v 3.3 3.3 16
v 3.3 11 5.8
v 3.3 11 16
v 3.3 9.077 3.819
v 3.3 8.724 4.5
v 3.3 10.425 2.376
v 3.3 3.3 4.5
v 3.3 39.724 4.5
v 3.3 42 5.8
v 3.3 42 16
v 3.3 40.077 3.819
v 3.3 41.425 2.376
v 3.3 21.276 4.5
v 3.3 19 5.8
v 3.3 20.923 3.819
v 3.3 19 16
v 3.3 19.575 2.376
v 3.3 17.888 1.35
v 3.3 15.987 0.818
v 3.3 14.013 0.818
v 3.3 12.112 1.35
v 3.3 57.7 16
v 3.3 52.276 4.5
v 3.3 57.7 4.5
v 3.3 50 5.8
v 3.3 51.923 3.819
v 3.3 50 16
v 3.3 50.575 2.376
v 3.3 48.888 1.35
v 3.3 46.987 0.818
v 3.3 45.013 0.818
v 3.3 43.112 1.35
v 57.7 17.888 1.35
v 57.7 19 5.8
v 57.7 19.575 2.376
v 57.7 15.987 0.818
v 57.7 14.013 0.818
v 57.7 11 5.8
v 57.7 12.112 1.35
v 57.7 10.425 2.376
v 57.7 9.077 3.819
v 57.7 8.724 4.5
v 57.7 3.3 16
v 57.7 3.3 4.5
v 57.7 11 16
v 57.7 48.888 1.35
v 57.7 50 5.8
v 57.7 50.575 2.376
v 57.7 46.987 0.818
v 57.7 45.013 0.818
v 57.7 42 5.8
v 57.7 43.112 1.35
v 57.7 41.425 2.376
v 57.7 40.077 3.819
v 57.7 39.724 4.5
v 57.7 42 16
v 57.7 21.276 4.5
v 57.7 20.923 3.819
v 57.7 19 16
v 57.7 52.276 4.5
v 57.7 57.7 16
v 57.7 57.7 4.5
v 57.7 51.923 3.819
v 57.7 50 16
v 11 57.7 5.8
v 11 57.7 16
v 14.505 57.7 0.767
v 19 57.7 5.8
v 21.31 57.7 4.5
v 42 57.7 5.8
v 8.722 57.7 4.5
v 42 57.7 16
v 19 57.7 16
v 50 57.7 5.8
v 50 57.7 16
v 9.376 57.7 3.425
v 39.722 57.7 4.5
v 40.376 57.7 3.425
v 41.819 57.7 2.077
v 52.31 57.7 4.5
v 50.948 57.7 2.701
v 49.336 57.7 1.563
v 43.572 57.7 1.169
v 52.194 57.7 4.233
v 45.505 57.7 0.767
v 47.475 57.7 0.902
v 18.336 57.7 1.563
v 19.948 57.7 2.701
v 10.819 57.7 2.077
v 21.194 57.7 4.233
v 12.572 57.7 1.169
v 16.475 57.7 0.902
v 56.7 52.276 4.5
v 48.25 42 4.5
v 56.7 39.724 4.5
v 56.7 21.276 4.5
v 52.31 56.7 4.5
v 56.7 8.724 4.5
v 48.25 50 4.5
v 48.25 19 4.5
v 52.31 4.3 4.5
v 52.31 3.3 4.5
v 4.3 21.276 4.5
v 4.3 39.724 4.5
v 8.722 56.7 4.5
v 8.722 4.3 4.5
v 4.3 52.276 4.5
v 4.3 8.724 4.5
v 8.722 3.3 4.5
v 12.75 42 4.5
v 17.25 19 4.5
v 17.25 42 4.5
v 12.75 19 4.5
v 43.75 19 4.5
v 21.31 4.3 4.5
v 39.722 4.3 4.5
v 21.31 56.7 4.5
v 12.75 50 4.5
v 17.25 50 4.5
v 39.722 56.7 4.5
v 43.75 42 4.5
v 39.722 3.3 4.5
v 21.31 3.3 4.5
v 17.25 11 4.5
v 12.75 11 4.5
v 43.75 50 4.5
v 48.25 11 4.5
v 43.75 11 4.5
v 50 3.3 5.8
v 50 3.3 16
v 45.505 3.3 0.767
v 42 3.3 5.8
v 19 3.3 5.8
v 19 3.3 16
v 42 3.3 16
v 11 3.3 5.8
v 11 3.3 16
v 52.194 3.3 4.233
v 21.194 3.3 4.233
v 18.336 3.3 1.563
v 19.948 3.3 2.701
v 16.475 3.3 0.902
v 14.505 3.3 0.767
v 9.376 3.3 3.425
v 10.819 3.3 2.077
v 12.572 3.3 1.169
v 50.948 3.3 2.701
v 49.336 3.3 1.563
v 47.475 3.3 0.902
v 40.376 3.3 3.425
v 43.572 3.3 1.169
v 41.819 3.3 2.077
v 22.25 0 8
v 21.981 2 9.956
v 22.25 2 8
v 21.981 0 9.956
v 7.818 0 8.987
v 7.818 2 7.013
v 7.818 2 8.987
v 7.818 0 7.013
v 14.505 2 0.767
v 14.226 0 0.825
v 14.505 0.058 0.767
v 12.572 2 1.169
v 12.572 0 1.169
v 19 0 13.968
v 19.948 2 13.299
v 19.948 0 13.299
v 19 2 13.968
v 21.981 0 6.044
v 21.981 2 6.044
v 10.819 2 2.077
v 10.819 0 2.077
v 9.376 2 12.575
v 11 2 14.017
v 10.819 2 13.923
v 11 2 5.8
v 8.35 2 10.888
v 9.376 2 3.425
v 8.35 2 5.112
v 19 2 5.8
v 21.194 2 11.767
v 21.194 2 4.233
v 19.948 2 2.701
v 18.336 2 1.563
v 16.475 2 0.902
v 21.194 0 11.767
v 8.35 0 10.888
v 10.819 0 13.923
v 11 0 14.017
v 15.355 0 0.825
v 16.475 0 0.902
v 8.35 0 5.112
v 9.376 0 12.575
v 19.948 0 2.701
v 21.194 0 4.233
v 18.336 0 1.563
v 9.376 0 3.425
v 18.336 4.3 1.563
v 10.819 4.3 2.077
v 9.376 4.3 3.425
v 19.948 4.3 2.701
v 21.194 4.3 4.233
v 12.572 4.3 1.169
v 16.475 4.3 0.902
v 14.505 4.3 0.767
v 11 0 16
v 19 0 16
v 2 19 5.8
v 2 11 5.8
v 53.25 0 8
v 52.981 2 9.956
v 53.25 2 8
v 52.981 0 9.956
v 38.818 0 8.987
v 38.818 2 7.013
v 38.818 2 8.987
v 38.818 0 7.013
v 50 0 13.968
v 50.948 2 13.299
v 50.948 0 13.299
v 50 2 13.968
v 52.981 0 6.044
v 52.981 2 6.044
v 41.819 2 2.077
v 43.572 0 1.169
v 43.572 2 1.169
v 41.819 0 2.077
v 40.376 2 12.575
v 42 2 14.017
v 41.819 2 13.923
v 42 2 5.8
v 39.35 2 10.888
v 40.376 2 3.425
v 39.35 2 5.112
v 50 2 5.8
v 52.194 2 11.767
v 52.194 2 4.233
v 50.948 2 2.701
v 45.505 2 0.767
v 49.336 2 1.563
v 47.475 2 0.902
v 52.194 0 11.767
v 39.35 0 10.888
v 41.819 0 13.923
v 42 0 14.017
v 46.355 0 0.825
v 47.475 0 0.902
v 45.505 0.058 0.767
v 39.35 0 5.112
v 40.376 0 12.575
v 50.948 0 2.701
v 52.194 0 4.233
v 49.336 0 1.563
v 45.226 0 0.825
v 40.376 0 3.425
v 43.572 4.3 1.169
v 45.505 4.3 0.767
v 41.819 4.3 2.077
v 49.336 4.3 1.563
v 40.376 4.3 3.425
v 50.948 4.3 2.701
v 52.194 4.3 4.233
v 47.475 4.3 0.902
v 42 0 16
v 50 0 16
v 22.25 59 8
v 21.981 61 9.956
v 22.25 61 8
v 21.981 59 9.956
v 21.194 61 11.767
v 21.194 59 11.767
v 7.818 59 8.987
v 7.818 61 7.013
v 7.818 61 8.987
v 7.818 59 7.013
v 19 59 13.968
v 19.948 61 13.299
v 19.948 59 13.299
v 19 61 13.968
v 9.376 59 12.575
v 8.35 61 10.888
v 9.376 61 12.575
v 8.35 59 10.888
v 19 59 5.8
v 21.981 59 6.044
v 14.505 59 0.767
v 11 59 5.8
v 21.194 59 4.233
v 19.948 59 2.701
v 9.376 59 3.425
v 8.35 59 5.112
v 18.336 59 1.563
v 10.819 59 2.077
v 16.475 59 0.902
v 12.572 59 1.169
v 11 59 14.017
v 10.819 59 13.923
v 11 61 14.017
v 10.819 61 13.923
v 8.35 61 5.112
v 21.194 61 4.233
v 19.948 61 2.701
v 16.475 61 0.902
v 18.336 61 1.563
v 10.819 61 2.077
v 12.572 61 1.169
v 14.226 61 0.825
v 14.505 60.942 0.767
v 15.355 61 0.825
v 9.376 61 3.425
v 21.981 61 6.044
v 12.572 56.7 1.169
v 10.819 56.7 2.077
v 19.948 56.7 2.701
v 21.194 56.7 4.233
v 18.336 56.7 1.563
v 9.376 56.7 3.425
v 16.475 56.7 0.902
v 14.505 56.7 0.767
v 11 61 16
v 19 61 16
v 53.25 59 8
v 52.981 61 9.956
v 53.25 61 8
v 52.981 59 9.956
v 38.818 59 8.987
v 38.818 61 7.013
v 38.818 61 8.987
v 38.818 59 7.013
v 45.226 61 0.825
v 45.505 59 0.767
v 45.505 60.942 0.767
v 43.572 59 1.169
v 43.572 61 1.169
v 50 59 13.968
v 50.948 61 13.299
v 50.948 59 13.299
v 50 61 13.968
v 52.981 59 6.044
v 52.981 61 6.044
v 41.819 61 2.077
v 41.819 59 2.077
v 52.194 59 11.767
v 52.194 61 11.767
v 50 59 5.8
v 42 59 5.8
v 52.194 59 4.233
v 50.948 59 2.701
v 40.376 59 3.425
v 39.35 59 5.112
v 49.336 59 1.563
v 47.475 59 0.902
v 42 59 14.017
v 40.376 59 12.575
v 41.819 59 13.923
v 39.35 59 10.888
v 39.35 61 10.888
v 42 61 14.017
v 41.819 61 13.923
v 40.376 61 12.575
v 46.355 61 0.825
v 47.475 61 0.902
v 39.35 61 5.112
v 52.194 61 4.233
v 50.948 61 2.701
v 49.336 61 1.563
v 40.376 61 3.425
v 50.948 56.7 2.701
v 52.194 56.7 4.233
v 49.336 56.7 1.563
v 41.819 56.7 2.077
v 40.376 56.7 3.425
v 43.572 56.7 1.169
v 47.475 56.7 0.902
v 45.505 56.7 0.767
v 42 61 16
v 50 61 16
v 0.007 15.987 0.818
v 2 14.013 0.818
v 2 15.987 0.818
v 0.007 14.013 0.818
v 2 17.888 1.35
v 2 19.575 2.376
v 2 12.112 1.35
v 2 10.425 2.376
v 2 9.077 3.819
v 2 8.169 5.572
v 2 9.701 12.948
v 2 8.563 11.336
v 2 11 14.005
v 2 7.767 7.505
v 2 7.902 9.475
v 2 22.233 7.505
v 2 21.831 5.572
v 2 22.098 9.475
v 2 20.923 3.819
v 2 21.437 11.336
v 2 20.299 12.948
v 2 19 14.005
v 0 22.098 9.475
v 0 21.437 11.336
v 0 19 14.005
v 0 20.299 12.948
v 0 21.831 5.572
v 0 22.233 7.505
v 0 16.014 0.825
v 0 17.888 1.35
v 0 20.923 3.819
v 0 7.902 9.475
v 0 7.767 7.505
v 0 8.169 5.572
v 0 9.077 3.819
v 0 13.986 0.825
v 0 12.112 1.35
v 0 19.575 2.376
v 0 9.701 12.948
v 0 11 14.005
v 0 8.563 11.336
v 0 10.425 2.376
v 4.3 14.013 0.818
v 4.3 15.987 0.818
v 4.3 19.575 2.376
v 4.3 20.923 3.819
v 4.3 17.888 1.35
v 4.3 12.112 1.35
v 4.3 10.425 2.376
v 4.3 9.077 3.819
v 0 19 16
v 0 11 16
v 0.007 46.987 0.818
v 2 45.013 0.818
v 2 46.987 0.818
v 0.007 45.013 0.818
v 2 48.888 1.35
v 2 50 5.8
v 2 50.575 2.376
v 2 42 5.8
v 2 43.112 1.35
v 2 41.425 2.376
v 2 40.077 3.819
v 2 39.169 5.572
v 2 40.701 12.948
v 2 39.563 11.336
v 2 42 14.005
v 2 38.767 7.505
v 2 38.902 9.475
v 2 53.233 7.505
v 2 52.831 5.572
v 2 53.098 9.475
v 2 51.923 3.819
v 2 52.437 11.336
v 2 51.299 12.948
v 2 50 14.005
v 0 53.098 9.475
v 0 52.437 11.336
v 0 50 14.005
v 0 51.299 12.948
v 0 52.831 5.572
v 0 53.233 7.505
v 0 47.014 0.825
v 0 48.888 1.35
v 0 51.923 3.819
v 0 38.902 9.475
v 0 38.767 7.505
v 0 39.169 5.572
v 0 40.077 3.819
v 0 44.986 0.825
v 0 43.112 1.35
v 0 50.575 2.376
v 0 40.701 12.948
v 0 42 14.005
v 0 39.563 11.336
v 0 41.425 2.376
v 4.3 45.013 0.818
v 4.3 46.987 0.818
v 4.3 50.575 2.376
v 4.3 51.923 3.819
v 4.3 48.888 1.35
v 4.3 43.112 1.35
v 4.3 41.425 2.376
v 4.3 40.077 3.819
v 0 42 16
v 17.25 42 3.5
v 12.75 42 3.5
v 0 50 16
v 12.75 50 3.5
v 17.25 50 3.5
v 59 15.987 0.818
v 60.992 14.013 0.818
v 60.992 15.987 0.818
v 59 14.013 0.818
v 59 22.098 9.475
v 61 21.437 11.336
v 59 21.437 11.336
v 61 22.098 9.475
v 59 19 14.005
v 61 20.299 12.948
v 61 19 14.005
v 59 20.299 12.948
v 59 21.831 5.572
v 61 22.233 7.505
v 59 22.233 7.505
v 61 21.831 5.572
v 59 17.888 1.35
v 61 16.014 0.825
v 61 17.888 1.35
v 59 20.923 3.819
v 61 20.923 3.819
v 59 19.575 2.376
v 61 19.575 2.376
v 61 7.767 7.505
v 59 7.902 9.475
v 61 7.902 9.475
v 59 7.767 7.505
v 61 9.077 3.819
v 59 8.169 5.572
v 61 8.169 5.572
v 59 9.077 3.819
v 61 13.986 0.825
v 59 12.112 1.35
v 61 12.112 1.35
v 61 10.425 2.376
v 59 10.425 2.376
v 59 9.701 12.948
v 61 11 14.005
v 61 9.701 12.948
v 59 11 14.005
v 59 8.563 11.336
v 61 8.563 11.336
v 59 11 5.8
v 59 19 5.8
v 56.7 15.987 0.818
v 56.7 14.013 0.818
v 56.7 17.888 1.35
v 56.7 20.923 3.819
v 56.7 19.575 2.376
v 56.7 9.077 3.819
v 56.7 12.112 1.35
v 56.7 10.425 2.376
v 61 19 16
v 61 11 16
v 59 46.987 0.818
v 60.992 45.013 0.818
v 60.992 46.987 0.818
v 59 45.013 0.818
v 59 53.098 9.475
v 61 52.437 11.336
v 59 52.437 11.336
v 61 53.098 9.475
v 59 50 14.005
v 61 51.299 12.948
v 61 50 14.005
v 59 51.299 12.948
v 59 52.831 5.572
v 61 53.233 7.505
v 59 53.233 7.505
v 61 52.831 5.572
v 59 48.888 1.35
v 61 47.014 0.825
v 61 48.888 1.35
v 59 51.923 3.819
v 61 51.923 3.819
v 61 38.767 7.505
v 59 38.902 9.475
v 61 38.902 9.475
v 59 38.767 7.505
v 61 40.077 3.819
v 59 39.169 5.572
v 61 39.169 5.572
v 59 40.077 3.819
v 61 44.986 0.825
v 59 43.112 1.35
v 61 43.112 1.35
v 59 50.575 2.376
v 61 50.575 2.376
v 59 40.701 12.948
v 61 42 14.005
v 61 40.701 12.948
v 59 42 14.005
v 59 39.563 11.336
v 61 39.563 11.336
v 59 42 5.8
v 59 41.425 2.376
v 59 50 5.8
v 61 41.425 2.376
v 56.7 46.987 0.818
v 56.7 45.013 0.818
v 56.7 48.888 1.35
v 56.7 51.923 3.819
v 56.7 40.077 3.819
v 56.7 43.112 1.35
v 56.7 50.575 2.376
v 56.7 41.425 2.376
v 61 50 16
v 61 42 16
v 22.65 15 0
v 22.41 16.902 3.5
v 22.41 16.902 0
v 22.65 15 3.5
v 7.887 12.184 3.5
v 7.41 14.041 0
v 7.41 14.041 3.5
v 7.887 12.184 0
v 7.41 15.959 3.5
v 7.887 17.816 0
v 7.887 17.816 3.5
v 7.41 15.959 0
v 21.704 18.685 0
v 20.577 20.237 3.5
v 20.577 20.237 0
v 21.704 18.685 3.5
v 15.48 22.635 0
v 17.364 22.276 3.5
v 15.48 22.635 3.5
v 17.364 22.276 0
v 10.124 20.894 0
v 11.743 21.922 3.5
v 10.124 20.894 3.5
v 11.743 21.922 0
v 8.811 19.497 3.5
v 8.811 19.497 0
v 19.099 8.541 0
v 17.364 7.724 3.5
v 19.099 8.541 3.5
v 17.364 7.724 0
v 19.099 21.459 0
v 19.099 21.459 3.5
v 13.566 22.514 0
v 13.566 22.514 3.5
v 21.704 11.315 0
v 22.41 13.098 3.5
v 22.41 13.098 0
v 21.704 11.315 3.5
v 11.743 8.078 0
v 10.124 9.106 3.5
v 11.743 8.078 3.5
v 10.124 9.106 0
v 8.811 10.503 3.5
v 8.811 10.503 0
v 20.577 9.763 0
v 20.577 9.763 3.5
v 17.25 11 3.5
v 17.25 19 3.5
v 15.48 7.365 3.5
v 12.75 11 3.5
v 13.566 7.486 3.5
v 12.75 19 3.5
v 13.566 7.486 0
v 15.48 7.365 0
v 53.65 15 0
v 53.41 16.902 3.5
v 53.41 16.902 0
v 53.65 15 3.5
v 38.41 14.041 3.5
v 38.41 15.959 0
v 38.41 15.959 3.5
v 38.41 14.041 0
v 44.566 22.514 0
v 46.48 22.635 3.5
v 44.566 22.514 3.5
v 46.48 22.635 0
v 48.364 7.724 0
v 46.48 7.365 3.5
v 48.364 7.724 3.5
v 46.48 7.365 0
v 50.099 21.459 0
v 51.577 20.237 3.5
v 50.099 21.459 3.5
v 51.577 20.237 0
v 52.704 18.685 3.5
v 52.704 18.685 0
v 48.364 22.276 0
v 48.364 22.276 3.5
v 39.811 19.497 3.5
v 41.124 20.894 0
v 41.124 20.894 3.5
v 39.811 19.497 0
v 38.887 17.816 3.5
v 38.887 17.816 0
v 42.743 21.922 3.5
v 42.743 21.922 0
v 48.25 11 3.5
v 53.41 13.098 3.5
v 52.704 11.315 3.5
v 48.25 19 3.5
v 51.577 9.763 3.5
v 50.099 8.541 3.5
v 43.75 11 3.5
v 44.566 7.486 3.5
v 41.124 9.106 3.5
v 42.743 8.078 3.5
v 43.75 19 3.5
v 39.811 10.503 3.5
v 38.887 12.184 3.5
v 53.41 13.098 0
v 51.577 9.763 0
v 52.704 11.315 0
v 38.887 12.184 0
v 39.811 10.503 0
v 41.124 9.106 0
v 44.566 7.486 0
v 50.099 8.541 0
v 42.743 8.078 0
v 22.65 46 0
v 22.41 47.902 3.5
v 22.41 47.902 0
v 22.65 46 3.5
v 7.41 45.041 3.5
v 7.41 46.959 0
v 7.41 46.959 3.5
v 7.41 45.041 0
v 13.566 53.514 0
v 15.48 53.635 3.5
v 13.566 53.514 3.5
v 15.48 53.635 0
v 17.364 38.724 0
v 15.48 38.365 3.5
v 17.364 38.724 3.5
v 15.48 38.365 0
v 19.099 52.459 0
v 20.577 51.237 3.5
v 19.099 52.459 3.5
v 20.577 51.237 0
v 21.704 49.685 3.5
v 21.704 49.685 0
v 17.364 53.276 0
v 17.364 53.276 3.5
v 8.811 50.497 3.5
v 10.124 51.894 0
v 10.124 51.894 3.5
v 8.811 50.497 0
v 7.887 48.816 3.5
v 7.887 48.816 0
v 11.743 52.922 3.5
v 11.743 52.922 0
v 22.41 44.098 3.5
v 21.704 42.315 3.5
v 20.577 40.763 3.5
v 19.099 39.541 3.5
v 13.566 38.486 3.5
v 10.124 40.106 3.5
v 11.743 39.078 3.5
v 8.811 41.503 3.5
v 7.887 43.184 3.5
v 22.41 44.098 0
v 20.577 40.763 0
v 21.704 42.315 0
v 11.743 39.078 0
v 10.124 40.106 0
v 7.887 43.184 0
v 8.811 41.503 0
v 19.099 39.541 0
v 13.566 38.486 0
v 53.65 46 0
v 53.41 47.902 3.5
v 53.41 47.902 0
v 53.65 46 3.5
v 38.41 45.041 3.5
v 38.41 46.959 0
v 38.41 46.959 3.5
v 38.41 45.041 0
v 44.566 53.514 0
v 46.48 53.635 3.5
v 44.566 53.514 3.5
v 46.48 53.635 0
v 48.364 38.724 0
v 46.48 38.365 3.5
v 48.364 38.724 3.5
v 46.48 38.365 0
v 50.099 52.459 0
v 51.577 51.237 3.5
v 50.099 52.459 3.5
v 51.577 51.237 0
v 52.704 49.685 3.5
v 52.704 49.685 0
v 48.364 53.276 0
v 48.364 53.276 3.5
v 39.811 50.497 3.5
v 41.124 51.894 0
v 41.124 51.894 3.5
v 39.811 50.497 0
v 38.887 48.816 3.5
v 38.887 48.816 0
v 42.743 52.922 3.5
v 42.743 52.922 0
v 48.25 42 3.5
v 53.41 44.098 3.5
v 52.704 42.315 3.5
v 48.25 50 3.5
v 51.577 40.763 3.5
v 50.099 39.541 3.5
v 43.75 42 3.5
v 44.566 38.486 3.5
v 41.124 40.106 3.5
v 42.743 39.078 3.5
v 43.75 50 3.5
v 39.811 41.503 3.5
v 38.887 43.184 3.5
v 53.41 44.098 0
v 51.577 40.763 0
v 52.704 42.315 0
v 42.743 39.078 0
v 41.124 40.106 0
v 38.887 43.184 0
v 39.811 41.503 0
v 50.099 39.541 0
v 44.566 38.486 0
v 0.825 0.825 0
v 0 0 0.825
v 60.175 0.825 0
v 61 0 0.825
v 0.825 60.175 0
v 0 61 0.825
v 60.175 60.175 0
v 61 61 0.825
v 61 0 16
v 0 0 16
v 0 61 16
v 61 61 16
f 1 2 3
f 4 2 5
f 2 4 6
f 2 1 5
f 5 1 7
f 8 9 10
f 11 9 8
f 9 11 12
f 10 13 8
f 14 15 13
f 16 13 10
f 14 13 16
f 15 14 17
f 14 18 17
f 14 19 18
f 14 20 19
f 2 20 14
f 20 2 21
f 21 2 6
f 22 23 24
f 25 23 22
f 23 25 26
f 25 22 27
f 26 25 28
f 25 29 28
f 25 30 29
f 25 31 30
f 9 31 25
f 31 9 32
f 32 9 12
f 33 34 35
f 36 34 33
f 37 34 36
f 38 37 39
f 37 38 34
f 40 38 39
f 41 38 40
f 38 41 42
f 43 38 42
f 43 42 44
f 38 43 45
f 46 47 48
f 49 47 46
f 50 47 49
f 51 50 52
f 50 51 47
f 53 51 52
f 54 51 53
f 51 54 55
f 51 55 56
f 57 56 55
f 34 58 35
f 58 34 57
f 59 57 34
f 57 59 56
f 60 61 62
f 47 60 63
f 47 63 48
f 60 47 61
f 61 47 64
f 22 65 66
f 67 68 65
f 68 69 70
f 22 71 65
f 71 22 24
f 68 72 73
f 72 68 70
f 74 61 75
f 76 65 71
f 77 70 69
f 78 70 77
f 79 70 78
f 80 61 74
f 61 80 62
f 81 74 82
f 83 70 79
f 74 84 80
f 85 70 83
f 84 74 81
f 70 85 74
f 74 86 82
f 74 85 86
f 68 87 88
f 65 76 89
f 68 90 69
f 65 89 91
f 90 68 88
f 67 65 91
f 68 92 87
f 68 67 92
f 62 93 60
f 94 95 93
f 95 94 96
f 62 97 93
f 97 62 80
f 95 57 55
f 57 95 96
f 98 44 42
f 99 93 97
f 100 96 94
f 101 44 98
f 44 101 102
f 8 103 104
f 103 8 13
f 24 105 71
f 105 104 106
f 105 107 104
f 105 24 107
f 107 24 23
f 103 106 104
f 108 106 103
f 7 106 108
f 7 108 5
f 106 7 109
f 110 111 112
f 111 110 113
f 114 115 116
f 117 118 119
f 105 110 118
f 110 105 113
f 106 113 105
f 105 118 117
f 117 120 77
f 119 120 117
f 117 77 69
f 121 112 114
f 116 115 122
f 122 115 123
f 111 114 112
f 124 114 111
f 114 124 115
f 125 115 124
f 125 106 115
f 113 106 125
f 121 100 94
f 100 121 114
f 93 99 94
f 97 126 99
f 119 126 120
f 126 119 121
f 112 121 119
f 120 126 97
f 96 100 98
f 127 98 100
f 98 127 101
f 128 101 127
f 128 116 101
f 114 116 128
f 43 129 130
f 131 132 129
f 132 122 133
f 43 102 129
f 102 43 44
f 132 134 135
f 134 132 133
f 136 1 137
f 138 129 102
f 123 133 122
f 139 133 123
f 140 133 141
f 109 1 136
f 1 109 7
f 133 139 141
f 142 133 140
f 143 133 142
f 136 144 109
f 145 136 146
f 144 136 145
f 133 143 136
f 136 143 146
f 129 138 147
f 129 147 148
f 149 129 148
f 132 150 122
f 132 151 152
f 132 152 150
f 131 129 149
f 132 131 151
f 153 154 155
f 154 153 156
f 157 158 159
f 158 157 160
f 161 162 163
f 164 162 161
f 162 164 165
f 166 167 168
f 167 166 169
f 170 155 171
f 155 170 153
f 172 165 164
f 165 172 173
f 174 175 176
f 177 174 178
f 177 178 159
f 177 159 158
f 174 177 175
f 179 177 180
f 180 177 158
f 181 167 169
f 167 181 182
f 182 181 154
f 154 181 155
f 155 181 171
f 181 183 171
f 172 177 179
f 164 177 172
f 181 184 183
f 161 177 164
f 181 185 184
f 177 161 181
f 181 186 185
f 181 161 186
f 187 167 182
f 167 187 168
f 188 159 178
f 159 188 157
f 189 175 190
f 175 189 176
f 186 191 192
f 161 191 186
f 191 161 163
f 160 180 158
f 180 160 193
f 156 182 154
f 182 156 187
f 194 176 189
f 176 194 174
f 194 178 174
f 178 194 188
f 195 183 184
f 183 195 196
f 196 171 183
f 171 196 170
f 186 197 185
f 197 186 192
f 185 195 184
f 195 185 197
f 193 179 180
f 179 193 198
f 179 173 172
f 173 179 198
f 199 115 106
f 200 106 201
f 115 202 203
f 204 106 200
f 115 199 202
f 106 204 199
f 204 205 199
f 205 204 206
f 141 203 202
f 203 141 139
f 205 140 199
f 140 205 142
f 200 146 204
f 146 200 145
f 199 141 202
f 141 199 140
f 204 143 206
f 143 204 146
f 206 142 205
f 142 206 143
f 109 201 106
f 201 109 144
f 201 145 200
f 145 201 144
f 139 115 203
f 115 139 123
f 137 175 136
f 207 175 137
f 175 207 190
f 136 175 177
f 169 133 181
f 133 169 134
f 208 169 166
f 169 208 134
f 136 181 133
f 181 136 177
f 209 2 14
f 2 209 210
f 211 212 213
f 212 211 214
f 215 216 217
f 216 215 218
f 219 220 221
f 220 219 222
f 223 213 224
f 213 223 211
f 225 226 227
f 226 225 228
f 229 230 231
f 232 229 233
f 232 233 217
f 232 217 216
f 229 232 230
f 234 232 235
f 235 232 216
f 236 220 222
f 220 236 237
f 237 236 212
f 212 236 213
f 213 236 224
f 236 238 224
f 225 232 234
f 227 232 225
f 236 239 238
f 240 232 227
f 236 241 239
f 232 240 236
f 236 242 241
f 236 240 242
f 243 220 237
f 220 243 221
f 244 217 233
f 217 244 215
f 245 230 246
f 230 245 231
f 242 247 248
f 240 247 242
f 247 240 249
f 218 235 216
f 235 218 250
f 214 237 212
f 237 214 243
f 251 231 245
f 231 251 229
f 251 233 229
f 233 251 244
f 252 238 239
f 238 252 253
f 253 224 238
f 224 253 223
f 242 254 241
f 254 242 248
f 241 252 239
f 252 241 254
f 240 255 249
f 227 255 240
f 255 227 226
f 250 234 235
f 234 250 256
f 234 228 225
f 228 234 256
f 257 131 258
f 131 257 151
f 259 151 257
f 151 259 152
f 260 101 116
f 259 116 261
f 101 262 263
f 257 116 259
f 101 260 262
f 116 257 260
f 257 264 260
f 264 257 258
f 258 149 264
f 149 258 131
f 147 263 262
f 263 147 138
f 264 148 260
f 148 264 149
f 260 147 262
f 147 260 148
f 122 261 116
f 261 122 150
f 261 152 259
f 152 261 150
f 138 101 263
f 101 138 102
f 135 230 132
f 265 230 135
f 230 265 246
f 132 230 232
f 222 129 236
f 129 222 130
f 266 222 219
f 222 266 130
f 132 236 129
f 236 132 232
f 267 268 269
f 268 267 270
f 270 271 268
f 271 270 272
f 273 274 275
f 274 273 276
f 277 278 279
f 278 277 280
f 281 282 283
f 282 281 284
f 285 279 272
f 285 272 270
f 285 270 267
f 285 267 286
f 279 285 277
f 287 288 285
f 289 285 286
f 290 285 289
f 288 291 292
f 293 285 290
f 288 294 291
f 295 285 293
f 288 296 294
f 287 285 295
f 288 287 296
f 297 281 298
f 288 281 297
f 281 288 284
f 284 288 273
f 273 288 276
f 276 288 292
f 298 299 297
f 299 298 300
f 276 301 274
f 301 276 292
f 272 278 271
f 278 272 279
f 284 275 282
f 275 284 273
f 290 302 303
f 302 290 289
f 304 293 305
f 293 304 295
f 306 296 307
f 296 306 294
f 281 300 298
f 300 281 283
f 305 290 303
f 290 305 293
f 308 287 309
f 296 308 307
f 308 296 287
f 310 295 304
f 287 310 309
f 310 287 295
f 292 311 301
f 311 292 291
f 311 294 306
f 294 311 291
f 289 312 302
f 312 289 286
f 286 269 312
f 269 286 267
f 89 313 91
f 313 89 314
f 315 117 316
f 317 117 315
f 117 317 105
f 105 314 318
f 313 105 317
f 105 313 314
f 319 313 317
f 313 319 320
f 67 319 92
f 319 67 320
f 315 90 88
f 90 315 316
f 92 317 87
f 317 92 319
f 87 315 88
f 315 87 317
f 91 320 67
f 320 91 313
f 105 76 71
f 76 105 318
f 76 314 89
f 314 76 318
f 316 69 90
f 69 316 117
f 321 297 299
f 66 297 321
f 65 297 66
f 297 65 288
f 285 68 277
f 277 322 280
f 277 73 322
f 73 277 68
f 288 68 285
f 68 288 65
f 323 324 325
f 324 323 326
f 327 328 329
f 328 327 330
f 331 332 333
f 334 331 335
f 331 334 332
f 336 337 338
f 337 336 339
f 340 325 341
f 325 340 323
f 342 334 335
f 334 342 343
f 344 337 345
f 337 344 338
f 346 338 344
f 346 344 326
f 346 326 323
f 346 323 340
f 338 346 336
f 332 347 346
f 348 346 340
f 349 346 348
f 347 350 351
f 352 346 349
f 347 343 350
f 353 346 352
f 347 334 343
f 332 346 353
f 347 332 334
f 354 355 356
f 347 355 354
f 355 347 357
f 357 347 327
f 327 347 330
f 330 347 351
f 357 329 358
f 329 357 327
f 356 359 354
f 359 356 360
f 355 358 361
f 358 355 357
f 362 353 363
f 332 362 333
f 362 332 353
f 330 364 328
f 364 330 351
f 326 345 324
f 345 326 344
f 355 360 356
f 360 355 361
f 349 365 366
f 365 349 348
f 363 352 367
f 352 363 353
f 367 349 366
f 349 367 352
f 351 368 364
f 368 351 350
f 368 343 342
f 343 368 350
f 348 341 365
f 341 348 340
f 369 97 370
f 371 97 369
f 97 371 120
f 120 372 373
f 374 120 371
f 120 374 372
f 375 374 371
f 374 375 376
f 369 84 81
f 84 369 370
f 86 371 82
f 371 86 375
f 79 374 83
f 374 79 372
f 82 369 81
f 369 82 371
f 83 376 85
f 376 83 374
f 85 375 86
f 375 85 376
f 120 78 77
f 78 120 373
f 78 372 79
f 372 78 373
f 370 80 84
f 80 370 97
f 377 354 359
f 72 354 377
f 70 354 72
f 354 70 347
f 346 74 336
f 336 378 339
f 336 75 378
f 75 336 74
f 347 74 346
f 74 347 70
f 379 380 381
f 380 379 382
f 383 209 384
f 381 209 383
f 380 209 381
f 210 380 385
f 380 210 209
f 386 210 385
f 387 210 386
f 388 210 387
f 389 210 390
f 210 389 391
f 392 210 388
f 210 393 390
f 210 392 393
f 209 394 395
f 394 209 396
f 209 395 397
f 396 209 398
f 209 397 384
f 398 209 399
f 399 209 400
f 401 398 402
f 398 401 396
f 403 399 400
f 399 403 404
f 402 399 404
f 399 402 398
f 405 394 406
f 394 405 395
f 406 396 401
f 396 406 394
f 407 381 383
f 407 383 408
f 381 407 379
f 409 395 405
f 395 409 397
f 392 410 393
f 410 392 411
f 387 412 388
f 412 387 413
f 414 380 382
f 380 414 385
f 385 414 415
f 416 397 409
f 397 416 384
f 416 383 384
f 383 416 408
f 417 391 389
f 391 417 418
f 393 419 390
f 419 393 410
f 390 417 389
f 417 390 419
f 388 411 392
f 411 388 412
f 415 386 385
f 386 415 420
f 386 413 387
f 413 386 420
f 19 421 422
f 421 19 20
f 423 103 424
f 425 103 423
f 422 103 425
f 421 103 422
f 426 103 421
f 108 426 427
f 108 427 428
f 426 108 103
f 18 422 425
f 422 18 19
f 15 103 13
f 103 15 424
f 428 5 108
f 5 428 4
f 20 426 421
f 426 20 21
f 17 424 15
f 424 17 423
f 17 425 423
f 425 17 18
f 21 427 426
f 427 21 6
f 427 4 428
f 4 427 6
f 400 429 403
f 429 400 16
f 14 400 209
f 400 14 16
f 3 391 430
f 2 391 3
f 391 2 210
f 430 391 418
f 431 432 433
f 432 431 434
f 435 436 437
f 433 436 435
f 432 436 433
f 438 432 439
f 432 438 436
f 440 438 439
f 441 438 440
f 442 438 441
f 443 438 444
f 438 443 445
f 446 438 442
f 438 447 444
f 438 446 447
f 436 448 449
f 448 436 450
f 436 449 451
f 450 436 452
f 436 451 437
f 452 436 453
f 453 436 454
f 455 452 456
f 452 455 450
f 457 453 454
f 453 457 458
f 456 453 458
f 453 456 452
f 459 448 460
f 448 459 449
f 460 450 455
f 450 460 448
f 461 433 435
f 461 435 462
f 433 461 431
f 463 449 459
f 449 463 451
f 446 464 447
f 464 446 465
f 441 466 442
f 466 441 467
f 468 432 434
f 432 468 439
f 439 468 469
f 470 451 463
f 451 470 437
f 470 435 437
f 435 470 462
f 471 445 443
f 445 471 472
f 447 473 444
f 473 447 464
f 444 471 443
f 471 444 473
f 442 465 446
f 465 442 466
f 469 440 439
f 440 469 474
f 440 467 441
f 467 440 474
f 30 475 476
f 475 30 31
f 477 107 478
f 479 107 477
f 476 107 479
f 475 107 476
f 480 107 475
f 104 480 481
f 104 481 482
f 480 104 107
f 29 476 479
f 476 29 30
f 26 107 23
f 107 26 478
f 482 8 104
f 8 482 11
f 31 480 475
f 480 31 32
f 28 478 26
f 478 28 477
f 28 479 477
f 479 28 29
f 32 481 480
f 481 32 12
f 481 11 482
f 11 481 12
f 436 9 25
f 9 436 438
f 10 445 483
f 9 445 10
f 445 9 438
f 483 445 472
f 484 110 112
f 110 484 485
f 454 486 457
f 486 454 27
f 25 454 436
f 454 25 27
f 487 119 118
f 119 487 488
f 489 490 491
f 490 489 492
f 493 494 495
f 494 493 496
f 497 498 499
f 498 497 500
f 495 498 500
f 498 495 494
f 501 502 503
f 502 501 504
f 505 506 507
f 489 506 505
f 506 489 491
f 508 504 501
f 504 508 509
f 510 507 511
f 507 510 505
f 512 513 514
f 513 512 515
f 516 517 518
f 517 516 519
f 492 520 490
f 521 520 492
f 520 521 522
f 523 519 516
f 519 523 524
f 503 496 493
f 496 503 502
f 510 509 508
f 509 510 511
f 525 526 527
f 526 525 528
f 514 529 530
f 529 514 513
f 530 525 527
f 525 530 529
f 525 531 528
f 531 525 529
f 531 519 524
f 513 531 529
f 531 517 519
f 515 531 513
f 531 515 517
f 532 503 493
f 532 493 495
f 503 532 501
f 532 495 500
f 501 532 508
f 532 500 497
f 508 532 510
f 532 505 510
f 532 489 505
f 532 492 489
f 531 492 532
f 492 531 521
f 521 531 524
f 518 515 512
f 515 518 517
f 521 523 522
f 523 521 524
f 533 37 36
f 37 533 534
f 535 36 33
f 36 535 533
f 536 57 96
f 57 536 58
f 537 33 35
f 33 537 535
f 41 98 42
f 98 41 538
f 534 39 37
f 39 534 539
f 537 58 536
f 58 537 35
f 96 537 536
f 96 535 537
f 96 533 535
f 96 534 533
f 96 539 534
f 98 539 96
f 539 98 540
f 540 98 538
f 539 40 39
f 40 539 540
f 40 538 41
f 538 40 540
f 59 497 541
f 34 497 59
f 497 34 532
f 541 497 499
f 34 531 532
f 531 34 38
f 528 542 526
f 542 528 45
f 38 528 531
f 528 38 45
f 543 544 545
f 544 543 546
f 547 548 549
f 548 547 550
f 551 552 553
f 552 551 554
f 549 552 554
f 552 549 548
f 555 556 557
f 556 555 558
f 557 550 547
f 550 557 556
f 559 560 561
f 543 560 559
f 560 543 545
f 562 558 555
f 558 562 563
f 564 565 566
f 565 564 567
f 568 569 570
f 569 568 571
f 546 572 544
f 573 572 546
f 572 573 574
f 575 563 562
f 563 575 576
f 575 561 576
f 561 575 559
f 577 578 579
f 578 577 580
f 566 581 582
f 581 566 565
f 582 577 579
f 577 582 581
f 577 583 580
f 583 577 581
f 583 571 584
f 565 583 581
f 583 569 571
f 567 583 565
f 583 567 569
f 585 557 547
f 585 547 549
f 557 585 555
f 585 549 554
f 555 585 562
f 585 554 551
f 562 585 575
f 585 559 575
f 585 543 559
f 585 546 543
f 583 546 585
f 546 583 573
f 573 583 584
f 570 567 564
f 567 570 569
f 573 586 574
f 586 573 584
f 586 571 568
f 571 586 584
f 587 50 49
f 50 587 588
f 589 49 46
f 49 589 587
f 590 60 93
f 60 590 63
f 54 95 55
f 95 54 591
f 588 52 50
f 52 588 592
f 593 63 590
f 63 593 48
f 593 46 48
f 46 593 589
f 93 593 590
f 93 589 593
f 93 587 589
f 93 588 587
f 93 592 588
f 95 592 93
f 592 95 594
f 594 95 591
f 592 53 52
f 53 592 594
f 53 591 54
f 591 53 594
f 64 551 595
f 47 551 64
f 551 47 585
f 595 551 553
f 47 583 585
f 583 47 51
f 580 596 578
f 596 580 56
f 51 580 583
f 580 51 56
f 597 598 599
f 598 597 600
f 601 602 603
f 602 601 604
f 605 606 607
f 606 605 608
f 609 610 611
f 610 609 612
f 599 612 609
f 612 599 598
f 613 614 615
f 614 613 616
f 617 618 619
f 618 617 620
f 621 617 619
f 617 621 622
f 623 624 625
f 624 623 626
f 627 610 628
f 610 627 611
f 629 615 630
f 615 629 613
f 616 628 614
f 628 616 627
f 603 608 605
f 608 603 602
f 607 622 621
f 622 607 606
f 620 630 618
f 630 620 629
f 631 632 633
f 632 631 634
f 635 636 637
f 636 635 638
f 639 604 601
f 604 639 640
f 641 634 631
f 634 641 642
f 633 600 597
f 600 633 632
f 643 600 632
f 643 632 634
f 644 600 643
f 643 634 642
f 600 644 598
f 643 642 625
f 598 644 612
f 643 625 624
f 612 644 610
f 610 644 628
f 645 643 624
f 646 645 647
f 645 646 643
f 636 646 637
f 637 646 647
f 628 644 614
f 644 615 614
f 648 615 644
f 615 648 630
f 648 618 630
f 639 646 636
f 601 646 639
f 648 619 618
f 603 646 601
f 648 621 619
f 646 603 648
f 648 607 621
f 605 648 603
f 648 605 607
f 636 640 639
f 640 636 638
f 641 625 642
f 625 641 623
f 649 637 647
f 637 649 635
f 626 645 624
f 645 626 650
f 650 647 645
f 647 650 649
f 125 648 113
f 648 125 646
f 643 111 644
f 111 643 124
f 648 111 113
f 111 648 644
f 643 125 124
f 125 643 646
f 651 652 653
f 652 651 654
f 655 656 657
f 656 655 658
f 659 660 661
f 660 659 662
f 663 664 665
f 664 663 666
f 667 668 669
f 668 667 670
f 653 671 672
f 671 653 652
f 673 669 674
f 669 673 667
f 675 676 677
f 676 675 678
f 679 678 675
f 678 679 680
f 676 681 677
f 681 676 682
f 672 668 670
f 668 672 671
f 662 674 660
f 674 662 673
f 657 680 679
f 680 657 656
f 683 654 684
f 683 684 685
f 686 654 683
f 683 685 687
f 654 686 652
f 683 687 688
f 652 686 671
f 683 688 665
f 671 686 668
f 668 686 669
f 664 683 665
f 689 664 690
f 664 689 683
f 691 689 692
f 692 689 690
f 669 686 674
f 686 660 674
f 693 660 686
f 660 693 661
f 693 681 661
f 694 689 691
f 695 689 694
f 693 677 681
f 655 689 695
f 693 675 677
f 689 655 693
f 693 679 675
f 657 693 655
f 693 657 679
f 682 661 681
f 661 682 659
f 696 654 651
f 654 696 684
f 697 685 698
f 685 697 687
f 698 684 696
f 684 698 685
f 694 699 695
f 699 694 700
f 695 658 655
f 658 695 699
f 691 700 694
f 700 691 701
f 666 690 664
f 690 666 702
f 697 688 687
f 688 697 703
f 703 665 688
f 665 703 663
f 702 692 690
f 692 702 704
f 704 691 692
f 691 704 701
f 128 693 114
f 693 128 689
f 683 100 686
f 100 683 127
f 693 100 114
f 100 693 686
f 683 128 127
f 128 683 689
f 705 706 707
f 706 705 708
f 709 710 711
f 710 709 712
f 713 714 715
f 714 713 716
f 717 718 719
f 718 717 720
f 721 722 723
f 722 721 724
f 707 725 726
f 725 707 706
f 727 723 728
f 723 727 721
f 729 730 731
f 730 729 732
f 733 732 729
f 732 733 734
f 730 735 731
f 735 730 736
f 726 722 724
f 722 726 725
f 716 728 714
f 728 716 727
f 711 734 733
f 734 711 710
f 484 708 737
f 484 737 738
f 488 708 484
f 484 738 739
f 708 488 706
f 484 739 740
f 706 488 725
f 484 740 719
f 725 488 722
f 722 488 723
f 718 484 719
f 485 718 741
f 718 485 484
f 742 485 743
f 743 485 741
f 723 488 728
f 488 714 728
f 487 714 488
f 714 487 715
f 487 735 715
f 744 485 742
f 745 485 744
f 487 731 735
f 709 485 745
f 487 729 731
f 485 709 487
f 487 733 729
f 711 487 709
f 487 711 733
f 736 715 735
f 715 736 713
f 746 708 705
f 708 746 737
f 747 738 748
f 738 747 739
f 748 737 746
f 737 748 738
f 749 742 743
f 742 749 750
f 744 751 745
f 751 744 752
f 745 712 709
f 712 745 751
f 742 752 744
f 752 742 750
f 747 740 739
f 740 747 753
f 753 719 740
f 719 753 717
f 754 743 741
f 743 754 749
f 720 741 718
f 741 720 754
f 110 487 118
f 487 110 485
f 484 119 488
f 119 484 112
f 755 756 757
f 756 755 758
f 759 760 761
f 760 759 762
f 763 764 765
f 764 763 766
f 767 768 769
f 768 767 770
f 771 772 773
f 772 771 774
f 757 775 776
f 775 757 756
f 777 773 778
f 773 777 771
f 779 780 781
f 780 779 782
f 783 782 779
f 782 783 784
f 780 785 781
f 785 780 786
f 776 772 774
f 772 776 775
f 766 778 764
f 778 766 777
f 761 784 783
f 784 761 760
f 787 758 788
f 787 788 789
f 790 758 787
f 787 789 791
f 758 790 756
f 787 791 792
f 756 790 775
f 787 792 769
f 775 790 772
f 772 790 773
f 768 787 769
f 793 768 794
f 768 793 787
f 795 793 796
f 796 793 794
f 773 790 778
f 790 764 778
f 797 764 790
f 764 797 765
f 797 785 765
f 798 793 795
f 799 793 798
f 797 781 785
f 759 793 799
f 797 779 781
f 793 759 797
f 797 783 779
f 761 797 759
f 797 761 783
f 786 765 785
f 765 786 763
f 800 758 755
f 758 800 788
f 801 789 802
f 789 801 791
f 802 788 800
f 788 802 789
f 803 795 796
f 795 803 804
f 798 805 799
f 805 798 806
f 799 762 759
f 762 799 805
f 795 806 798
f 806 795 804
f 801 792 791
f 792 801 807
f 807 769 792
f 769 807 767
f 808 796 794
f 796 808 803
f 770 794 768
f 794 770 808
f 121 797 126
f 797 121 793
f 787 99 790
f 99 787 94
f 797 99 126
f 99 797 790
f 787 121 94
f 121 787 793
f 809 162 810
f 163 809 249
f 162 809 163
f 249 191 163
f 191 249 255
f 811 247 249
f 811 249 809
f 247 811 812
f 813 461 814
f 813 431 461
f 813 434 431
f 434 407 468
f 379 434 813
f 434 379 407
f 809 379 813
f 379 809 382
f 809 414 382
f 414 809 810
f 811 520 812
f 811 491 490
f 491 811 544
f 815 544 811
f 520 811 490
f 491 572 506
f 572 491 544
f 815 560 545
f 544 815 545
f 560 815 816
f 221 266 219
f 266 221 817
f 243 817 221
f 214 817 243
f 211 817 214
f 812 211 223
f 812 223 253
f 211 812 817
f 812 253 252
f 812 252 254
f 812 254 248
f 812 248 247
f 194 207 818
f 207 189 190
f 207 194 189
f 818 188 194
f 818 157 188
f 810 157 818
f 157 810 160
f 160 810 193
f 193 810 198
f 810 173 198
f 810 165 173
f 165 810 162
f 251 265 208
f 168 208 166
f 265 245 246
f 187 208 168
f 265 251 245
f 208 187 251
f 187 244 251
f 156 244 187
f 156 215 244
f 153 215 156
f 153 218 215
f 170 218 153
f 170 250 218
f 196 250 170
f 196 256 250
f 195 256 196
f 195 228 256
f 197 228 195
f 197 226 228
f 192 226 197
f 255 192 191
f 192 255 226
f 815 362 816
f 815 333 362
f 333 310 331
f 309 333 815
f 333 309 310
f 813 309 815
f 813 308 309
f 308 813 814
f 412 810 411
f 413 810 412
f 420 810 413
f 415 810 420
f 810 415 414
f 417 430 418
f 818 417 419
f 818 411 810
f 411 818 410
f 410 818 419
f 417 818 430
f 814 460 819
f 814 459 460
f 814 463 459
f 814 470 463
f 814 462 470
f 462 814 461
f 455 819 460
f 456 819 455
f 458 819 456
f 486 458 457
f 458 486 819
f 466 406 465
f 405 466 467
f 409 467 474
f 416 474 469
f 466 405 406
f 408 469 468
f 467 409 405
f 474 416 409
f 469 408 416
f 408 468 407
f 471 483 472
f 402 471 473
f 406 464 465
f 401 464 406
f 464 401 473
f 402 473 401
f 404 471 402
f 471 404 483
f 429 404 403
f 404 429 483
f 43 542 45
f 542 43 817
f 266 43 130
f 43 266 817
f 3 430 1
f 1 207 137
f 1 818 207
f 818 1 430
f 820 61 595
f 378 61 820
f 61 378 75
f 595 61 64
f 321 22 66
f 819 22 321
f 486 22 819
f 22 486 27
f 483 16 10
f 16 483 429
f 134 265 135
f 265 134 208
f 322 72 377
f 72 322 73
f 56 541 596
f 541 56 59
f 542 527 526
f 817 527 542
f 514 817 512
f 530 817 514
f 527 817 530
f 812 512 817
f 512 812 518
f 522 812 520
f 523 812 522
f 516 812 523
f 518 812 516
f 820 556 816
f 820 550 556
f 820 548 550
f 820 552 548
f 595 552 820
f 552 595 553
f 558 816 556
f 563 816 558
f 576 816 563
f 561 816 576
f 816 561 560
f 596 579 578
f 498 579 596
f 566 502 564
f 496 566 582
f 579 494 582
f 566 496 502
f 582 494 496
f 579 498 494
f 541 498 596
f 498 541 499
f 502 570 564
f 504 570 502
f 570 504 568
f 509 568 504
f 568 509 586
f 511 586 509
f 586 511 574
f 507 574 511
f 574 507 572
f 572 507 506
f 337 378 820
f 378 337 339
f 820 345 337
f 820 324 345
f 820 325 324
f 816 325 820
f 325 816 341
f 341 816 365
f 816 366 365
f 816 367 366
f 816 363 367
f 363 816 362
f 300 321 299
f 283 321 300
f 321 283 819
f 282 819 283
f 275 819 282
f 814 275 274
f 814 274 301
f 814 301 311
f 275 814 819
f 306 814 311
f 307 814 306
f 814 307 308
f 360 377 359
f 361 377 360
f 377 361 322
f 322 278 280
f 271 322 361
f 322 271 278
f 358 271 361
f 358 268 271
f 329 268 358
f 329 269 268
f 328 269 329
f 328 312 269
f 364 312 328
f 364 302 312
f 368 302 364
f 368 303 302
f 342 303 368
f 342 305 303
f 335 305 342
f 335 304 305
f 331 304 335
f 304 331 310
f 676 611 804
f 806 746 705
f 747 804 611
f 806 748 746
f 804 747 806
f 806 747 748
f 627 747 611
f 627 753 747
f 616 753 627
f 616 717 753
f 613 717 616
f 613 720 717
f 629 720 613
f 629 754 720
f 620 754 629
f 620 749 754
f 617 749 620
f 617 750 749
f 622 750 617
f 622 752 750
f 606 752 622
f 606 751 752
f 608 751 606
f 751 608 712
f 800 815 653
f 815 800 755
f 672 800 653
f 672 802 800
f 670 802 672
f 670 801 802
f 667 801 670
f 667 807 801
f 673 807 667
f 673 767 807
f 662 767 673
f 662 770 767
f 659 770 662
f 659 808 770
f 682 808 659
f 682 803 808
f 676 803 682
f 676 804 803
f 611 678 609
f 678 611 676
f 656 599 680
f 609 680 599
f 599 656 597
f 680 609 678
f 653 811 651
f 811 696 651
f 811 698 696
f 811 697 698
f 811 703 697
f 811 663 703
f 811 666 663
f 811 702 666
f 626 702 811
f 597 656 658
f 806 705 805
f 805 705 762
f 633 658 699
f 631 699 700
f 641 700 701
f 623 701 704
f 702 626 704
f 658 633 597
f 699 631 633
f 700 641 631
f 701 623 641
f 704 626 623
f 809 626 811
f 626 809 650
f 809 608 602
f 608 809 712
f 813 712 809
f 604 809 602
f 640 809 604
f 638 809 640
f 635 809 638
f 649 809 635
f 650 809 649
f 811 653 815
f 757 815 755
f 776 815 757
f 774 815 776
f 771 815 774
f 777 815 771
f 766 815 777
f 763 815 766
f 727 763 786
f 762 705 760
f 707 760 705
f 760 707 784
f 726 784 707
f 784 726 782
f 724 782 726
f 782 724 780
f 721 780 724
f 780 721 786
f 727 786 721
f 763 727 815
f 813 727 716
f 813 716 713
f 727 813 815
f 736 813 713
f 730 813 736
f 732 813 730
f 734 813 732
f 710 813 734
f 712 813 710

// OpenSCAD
// file: settings.scad
cube_width=30;
cube_height=16;
cube_thickness=3.3;

cap_width=30;
cap_height=6;
cap_thickness=3.3;

glyph_depth=0.7;
glyph_thickness=1.5;

photo_resitor_hole_r = 2.4;
spring_contact_hole_r = 3.1;
// main file
include <settings.scad>

module radio_cube_2x2(width, height, thickness)
{
    //width2 = width;
    width2 = 2*width + 1;
    difference()
    {
        cube([width2,width2,height]);
        union()
        {
            translate([thickness,thickness,thickness+1.2]) cube([width2-2*thickness,width2-2*thickness,height+10]);
            
            //-y
            translate([width/2,2.0,8])rotate([90,0,0])cylinder(r=14.5/2, h=2.6);
            translate([width/2,thickness+1,8])rotate([90,0,0])cylinder(r=14.5/2, h=1);
            translate([width/2-4,-0.2,5.8])cube([8,20,15]);

            translate([3*width/2+1,2.0,8])rotate([90,0,0])cylinder(r=14.5/2, h=2.6);
            translate([3*width/2+1,thickness+1,8])rotate([90,0,0])cylinder(r=14.5/2, h=1);
            translate([3*width/2-3,-0.2,5.8])cube([8,20,15]);
            
            // y
            translate([width/2,width2+0.6,8])rotate([90,0,0])cylinder(r=14.5/2, h=2.6);
            translate([width/2,width2-thickness,8])rotate([90,0,0])cylinder(r=14.5/2, h=1);
            translate([width/2-4, width2-10,5.8])cube([8,20,15]);

            translate([3*width/2+1,width2+0.6,8])rotate([90,0,0])cylinder(r=14.5/2, h=2.6);
            translate([3*width/2+1,width2-thickness,8])rotate([90,0,0])cylinder(r=14.5/2, h=1);
            translate([3*width/2-3, width2-10,5.8])cube([8,20,15]);
            
            //-x
            translate([2.0,width/2,8])rotate([0,-90,0])cylinder(r=14.5/2, h=2.6);
            translate([thickness+1,width/2,8])rotate([0,-90,0])cylinder(r=14.5/2, h=1);
            translate([-0.2,width/2-4,5.8])cube([20,8,15]);
            translate([2.0,3*width/2+1,8])rotate([0,-90,0])cylinder(r=14.5/2, h=2.6);
            translate([thickness+1,3*width/2+1,8])rotate([0,-90,0])cylinder(r=14.5/2, h=1);
            translate([-0.2,3*width/2-3,5.8])cube([20,8,15]);
            
            // x
            translate([width2+0.6,width/2,8])rotate([0,-90,0])cylinder(r=14.5/2, h=2.6);
            translate([width2-thickness,width/2,8])rotate([0,-90,0])cylinder(r=14.5/2, h=1);
            translate([width2-10,width/2-4,5.8])cube([20,8,15]);

            translate([width2+0.6,3*width/2+1,8])rotate([0,-90,0])cylinder(r=14.5/2, h=2.6);
            translate([width2-thickness,3*width/2+1,8])rotate([0,-90,0])cylinder(r=14.5/2, h=1);
            translate([width2-10,3*width/2-3,5.8])cube([20,8,15]);

            //bottom
            translate([width/2,width/2,-0.1]) cylinder(r=15.3/2, h=3.6);        
            translate([width/2-2.25,width/2-4,0])cube([4.5,8,15]);
            translate([3*width/2+1,width/2,-0.1]) cylinder(r=15.3/2, h=3.6);        
            translate([3*width/2-2.25+1,width/2-4,0])cube([4.5,8,15]);

            translate([width/2,3*width/2+1,-0.1]) cylinder(r=15.3/2, h=3.6);        
            translate([width/2-2.25,3*width/2-4+1,0])cube([4.5,8,15]);
            translate([3*width/2+1,3*width/2+1,-0.1]) cylinder(r=15.3/2, h=3.6);        
            translate([3*width/2-2.25+1,3*width/2-4+1,0])cube([4.5,8,15]);

            
            //corners
            translate([0,0.25*thickness,0])rotate([45,0,0]) translate([-0.5*width2, -width2, -0.5*height]) cube([2*width2, width2, 2*height]);
            translate([0.25*thickness,0,0]) rotate([0,-45,0]) translate([-width2, -0.5*width2, -0.5*height]) cube([width2, 2*width2, 2*height]);
            translate([width2-0.25*thickness,0,0]) rotate([0,45,0]) translate([0, 0, -0.5*height]) cube([width2, 2*width2, 2*height]);
            translate([0,width2-0.25*thickness,0]) rotate([-45,0,0]) translate([-0.5*width2, 0, -0.5*height]) cube([2*width2, width2, 2*height]);
        }
    }
}

radio_cube_2x2(cube_width, cube_height, cube_thickness);
